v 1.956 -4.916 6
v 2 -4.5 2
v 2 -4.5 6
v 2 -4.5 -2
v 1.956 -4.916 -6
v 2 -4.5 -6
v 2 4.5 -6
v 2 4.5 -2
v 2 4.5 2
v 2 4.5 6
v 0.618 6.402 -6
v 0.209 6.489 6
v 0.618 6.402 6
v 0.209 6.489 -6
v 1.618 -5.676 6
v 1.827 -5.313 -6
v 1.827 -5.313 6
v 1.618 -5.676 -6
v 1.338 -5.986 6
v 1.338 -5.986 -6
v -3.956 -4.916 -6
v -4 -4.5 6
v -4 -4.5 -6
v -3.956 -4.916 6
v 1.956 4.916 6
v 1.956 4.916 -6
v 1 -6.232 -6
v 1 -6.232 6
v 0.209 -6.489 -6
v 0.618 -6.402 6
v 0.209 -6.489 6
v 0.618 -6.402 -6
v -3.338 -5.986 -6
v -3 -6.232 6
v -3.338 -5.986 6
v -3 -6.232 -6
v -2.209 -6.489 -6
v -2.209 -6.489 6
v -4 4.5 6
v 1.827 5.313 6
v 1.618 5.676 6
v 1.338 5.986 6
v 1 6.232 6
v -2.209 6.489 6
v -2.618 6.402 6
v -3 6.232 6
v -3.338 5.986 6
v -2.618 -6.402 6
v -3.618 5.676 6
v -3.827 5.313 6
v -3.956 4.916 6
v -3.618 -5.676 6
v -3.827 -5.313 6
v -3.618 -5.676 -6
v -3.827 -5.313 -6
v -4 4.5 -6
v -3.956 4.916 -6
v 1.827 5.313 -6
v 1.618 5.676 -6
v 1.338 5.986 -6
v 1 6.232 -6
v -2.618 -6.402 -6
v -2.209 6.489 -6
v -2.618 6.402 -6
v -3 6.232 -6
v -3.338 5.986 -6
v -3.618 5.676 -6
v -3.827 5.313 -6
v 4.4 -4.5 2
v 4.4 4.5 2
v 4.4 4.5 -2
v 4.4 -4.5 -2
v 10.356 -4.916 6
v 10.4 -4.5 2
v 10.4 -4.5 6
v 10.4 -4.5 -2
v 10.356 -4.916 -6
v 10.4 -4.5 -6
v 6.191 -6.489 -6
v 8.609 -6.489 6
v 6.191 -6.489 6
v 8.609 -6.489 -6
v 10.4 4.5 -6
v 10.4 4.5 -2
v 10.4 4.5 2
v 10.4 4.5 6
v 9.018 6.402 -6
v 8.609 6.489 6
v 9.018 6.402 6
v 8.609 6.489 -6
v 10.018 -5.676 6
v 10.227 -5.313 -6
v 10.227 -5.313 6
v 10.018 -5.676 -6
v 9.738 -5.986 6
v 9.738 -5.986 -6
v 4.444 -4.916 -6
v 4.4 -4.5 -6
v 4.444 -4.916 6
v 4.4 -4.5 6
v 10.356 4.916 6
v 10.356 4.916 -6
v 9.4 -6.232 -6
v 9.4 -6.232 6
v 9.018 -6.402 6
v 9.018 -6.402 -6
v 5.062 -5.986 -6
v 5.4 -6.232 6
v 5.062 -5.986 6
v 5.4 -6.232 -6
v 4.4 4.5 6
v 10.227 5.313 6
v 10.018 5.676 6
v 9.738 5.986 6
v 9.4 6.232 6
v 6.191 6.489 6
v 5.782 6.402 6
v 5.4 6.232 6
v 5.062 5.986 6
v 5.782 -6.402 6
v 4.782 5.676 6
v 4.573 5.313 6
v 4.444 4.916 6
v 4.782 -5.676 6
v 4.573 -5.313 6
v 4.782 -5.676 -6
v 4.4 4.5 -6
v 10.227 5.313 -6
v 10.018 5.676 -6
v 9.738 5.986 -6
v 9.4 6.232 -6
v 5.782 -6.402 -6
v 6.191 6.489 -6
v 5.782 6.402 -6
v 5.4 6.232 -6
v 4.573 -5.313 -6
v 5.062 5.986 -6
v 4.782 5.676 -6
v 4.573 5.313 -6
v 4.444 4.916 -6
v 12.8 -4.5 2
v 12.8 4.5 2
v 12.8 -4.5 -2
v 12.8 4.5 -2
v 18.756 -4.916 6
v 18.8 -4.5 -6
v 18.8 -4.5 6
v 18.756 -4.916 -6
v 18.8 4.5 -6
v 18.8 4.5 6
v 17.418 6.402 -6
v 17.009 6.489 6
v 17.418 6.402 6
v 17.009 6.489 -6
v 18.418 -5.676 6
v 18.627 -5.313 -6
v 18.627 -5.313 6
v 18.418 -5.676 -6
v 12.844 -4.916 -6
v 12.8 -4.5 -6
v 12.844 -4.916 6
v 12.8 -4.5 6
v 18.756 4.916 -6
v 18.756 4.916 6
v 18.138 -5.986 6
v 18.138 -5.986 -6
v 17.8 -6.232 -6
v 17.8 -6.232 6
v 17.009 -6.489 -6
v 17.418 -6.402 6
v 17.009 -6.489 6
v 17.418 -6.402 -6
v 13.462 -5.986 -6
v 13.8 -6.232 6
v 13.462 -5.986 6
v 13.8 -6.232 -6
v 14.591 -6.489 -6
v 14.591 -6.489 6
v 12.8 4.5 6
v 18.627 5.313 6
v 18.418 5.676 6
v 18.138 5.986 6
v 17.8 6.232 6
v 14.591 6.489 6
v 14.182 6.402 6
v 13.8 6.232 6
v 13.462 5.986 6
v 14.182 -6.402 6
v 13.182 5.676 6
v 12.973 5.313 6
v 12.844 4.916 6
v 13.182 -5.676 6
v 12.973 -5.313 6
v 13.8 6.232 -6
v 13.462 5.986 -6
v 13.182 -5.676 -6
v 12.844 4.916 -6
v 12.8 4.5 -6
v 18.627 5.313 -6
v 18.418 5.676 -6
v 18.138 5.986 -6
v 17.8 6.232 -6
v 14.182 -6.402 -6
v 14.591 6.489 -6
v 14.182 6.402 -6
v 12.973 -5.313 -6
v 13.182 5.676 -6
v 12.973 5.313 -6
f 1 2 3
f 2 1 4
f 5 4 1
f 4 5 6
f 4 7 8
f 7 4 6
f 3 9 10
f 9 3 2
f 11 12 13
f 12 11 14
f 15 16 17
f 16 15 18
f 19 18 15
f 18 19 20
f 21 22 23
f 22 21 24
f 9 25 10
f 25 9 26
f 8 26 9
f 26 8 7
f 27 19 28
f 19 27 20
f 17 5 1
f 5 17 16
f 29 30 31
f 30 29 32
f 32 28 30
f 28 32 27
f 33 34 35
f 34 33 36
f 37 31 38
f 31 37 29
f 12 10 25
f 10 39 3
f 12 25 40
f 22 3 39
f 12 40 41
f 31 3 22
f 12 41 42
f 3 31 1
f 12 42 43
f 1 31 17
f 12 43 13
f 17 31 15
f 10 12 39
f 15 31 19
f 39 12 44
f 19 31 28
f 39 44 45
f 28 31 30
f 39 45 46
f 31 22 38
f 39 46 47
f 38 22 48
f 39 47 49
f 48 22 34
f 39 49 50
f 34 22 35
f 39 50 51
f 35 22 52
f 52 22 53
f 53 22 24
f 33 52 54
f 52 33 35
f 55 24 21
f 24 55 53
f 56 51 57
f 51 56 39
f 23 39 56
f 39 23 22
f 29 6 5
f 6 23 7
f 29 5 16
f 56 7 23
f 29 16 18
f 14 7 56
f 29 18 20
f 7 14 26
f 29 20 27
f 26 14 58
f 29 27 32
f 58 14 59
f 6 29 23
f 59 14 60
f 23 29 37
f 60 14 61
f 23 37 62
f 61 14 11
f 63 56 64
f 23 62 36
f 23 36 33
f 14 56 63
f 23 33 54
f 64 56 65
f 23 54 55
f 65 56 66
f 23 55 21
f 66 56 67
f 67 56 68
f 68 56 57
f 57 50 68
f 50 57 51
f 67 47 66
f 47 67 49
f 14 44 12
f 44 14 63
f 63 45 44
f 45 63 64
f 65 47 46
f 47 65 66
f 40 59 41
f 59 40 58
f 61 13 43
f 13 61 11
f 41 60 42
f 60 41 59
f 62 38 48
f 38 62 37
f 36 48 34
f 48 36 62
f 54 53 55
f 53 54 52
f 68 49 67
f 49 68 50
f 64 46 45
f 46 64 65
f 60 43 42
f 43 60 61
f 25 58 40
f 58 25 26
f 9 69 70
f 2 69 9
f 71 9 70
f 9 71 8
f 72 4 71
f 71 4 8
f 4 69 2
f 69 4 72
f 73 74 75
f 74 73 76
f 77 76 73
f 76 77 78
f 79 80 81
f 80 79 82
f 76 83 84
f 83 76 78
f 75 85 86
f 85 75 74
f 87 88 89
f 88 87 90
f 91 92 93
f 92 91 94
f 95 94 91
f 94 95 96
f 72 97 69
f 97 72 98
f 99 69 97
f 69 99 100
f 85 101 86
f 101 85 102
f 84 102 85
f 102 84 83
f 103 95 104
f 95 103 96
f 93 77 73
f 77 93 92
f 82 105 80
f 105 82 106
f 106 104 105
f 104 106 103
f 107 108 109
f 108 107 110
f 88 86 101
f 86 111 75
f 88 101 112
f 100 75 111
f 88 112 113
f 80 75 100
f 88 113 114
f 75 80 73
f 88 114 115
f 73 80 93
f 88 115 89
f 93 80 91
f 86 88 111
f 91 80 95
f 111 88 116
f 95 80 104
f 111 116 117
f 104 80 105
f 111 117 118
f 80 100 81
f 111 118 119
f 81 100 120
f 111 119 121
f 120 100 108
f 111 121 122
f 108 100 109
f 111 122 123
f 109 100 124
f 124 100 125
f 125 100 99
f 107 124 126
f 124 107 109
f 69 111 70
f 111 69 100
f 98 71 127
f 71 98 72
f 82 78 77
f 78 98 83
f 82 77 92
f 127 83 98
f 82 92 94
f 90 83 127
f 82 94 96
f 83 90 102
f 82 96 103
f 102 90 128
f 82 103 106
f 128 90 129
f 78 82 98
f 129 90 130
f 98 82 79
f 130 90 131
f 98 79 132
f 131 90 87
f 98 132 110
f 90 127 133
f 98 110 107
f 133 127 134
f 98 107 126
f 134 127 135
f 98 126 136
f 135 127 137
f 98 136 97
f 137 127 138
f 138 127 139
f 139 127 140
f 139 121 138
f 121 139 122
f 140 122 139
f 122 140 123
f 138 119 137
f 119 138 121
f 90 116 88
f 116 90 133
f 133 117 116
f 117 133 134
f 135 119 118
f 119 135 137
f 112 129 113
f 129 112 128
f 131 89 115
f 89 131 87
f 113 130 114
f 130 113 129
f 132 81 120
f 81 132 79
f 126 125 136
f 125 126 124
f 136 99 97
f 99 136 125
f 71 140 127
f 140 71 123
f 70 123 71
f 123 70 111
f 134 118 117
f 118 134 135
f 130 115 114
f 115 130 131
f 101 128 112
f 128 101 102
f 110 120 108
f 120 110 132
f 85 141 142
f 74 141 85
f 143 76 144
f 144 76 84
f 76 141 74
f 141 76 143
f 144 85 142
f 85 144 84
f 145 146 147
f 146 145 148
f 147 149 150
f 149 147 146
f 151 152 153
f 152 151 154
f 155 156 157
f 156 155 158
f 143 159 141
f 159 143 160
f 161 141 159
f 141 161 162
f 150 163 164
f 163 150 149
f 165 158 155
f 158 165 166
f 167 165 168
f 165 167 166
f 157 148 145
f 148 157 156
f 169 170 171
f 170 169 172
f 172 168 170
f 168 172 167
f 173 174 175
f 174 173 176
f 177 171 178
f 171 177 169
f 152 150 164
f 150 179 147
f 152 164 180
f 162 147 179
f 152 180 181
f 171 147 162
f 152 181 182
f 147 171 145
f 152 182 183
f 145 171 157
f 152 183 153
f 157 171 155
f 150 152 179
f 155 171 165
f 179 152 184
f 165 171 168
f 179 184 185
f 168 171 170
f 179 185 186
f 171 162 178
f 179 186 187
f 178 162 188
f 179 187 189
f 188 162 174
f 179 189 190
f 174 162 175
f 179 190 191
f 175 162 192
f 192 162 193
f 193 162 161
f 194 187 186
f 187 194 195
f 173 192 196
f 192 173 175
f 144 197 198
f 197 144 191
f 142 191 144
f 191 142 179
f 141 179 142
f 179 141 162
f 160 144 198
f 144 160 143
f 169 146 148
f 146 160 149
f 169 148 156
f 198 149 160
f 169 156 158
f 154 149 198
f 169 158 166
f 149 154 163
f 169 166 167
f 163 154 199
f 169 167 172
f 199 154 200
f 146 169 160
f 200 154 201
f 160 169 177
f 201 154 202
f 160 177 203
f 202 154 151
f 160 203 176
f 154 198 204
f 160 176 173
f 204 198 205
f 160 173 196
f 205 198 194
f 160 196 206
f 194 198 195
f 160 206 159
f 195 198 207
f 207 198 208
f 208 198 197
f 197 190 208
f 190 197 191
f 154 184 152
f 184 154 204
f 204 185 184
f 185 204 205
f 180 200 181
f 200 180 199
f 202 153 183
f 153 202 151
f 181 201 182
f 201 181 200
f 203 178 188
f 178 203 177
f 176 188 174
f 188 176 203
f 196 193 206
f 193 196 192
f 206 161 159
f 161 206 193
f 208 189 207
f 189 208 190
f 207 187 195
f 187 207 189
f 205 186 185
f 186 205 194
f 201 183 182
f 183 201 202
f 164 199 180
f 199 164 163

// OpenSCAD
$fn=30;
height=12;
radius=2;
union(){
    hull(){
        translate([0,-4.5,0])cylinder(r=radius,h=height, center=true);
        translate([-2,4.5,0])cylinder(r=radius,h=height, center=true);
        translate([0,4.5,0])cylinder(r=radius,h=height, center=true);
        translate([-2,-4.5,0])cylinder(r=radius,h=height, center=true);
  }
  translate([3.2,0,0])cube([radius/0.8,radius+7,radius+2],center=true);
   translate([8.4,0,0]) hull(){
        translate([0,-4.5,0])cylinder(r=radius,h=height, center=true);
        translate([-2,4.5,0])cylinder(r=radius,h=height, center=true);
        translate([0,4.5,0])cylinder(r=radius,h=height, center=true);
        translate([-2,-4.5,0])cylinder(r=radius,h=height, center=true);
  }
  translate([11.6,0,0])cube([radius/0.8,radius+7,radius+2],center=true);
   translate([16.8,0,0]) hull(){
        translate([0,-4.5,0])cylinder(r=radius,h=height, center=true);
        translate([-2,4.5,0])cylinder(r=radius,h=height, center=true);
        translate([0,4.5,0])cylinder(r=radius,h=height, center=true);
        translate([-2,-4.5,0])cylinder(r=radius,h=height, center=true);
  }
}
